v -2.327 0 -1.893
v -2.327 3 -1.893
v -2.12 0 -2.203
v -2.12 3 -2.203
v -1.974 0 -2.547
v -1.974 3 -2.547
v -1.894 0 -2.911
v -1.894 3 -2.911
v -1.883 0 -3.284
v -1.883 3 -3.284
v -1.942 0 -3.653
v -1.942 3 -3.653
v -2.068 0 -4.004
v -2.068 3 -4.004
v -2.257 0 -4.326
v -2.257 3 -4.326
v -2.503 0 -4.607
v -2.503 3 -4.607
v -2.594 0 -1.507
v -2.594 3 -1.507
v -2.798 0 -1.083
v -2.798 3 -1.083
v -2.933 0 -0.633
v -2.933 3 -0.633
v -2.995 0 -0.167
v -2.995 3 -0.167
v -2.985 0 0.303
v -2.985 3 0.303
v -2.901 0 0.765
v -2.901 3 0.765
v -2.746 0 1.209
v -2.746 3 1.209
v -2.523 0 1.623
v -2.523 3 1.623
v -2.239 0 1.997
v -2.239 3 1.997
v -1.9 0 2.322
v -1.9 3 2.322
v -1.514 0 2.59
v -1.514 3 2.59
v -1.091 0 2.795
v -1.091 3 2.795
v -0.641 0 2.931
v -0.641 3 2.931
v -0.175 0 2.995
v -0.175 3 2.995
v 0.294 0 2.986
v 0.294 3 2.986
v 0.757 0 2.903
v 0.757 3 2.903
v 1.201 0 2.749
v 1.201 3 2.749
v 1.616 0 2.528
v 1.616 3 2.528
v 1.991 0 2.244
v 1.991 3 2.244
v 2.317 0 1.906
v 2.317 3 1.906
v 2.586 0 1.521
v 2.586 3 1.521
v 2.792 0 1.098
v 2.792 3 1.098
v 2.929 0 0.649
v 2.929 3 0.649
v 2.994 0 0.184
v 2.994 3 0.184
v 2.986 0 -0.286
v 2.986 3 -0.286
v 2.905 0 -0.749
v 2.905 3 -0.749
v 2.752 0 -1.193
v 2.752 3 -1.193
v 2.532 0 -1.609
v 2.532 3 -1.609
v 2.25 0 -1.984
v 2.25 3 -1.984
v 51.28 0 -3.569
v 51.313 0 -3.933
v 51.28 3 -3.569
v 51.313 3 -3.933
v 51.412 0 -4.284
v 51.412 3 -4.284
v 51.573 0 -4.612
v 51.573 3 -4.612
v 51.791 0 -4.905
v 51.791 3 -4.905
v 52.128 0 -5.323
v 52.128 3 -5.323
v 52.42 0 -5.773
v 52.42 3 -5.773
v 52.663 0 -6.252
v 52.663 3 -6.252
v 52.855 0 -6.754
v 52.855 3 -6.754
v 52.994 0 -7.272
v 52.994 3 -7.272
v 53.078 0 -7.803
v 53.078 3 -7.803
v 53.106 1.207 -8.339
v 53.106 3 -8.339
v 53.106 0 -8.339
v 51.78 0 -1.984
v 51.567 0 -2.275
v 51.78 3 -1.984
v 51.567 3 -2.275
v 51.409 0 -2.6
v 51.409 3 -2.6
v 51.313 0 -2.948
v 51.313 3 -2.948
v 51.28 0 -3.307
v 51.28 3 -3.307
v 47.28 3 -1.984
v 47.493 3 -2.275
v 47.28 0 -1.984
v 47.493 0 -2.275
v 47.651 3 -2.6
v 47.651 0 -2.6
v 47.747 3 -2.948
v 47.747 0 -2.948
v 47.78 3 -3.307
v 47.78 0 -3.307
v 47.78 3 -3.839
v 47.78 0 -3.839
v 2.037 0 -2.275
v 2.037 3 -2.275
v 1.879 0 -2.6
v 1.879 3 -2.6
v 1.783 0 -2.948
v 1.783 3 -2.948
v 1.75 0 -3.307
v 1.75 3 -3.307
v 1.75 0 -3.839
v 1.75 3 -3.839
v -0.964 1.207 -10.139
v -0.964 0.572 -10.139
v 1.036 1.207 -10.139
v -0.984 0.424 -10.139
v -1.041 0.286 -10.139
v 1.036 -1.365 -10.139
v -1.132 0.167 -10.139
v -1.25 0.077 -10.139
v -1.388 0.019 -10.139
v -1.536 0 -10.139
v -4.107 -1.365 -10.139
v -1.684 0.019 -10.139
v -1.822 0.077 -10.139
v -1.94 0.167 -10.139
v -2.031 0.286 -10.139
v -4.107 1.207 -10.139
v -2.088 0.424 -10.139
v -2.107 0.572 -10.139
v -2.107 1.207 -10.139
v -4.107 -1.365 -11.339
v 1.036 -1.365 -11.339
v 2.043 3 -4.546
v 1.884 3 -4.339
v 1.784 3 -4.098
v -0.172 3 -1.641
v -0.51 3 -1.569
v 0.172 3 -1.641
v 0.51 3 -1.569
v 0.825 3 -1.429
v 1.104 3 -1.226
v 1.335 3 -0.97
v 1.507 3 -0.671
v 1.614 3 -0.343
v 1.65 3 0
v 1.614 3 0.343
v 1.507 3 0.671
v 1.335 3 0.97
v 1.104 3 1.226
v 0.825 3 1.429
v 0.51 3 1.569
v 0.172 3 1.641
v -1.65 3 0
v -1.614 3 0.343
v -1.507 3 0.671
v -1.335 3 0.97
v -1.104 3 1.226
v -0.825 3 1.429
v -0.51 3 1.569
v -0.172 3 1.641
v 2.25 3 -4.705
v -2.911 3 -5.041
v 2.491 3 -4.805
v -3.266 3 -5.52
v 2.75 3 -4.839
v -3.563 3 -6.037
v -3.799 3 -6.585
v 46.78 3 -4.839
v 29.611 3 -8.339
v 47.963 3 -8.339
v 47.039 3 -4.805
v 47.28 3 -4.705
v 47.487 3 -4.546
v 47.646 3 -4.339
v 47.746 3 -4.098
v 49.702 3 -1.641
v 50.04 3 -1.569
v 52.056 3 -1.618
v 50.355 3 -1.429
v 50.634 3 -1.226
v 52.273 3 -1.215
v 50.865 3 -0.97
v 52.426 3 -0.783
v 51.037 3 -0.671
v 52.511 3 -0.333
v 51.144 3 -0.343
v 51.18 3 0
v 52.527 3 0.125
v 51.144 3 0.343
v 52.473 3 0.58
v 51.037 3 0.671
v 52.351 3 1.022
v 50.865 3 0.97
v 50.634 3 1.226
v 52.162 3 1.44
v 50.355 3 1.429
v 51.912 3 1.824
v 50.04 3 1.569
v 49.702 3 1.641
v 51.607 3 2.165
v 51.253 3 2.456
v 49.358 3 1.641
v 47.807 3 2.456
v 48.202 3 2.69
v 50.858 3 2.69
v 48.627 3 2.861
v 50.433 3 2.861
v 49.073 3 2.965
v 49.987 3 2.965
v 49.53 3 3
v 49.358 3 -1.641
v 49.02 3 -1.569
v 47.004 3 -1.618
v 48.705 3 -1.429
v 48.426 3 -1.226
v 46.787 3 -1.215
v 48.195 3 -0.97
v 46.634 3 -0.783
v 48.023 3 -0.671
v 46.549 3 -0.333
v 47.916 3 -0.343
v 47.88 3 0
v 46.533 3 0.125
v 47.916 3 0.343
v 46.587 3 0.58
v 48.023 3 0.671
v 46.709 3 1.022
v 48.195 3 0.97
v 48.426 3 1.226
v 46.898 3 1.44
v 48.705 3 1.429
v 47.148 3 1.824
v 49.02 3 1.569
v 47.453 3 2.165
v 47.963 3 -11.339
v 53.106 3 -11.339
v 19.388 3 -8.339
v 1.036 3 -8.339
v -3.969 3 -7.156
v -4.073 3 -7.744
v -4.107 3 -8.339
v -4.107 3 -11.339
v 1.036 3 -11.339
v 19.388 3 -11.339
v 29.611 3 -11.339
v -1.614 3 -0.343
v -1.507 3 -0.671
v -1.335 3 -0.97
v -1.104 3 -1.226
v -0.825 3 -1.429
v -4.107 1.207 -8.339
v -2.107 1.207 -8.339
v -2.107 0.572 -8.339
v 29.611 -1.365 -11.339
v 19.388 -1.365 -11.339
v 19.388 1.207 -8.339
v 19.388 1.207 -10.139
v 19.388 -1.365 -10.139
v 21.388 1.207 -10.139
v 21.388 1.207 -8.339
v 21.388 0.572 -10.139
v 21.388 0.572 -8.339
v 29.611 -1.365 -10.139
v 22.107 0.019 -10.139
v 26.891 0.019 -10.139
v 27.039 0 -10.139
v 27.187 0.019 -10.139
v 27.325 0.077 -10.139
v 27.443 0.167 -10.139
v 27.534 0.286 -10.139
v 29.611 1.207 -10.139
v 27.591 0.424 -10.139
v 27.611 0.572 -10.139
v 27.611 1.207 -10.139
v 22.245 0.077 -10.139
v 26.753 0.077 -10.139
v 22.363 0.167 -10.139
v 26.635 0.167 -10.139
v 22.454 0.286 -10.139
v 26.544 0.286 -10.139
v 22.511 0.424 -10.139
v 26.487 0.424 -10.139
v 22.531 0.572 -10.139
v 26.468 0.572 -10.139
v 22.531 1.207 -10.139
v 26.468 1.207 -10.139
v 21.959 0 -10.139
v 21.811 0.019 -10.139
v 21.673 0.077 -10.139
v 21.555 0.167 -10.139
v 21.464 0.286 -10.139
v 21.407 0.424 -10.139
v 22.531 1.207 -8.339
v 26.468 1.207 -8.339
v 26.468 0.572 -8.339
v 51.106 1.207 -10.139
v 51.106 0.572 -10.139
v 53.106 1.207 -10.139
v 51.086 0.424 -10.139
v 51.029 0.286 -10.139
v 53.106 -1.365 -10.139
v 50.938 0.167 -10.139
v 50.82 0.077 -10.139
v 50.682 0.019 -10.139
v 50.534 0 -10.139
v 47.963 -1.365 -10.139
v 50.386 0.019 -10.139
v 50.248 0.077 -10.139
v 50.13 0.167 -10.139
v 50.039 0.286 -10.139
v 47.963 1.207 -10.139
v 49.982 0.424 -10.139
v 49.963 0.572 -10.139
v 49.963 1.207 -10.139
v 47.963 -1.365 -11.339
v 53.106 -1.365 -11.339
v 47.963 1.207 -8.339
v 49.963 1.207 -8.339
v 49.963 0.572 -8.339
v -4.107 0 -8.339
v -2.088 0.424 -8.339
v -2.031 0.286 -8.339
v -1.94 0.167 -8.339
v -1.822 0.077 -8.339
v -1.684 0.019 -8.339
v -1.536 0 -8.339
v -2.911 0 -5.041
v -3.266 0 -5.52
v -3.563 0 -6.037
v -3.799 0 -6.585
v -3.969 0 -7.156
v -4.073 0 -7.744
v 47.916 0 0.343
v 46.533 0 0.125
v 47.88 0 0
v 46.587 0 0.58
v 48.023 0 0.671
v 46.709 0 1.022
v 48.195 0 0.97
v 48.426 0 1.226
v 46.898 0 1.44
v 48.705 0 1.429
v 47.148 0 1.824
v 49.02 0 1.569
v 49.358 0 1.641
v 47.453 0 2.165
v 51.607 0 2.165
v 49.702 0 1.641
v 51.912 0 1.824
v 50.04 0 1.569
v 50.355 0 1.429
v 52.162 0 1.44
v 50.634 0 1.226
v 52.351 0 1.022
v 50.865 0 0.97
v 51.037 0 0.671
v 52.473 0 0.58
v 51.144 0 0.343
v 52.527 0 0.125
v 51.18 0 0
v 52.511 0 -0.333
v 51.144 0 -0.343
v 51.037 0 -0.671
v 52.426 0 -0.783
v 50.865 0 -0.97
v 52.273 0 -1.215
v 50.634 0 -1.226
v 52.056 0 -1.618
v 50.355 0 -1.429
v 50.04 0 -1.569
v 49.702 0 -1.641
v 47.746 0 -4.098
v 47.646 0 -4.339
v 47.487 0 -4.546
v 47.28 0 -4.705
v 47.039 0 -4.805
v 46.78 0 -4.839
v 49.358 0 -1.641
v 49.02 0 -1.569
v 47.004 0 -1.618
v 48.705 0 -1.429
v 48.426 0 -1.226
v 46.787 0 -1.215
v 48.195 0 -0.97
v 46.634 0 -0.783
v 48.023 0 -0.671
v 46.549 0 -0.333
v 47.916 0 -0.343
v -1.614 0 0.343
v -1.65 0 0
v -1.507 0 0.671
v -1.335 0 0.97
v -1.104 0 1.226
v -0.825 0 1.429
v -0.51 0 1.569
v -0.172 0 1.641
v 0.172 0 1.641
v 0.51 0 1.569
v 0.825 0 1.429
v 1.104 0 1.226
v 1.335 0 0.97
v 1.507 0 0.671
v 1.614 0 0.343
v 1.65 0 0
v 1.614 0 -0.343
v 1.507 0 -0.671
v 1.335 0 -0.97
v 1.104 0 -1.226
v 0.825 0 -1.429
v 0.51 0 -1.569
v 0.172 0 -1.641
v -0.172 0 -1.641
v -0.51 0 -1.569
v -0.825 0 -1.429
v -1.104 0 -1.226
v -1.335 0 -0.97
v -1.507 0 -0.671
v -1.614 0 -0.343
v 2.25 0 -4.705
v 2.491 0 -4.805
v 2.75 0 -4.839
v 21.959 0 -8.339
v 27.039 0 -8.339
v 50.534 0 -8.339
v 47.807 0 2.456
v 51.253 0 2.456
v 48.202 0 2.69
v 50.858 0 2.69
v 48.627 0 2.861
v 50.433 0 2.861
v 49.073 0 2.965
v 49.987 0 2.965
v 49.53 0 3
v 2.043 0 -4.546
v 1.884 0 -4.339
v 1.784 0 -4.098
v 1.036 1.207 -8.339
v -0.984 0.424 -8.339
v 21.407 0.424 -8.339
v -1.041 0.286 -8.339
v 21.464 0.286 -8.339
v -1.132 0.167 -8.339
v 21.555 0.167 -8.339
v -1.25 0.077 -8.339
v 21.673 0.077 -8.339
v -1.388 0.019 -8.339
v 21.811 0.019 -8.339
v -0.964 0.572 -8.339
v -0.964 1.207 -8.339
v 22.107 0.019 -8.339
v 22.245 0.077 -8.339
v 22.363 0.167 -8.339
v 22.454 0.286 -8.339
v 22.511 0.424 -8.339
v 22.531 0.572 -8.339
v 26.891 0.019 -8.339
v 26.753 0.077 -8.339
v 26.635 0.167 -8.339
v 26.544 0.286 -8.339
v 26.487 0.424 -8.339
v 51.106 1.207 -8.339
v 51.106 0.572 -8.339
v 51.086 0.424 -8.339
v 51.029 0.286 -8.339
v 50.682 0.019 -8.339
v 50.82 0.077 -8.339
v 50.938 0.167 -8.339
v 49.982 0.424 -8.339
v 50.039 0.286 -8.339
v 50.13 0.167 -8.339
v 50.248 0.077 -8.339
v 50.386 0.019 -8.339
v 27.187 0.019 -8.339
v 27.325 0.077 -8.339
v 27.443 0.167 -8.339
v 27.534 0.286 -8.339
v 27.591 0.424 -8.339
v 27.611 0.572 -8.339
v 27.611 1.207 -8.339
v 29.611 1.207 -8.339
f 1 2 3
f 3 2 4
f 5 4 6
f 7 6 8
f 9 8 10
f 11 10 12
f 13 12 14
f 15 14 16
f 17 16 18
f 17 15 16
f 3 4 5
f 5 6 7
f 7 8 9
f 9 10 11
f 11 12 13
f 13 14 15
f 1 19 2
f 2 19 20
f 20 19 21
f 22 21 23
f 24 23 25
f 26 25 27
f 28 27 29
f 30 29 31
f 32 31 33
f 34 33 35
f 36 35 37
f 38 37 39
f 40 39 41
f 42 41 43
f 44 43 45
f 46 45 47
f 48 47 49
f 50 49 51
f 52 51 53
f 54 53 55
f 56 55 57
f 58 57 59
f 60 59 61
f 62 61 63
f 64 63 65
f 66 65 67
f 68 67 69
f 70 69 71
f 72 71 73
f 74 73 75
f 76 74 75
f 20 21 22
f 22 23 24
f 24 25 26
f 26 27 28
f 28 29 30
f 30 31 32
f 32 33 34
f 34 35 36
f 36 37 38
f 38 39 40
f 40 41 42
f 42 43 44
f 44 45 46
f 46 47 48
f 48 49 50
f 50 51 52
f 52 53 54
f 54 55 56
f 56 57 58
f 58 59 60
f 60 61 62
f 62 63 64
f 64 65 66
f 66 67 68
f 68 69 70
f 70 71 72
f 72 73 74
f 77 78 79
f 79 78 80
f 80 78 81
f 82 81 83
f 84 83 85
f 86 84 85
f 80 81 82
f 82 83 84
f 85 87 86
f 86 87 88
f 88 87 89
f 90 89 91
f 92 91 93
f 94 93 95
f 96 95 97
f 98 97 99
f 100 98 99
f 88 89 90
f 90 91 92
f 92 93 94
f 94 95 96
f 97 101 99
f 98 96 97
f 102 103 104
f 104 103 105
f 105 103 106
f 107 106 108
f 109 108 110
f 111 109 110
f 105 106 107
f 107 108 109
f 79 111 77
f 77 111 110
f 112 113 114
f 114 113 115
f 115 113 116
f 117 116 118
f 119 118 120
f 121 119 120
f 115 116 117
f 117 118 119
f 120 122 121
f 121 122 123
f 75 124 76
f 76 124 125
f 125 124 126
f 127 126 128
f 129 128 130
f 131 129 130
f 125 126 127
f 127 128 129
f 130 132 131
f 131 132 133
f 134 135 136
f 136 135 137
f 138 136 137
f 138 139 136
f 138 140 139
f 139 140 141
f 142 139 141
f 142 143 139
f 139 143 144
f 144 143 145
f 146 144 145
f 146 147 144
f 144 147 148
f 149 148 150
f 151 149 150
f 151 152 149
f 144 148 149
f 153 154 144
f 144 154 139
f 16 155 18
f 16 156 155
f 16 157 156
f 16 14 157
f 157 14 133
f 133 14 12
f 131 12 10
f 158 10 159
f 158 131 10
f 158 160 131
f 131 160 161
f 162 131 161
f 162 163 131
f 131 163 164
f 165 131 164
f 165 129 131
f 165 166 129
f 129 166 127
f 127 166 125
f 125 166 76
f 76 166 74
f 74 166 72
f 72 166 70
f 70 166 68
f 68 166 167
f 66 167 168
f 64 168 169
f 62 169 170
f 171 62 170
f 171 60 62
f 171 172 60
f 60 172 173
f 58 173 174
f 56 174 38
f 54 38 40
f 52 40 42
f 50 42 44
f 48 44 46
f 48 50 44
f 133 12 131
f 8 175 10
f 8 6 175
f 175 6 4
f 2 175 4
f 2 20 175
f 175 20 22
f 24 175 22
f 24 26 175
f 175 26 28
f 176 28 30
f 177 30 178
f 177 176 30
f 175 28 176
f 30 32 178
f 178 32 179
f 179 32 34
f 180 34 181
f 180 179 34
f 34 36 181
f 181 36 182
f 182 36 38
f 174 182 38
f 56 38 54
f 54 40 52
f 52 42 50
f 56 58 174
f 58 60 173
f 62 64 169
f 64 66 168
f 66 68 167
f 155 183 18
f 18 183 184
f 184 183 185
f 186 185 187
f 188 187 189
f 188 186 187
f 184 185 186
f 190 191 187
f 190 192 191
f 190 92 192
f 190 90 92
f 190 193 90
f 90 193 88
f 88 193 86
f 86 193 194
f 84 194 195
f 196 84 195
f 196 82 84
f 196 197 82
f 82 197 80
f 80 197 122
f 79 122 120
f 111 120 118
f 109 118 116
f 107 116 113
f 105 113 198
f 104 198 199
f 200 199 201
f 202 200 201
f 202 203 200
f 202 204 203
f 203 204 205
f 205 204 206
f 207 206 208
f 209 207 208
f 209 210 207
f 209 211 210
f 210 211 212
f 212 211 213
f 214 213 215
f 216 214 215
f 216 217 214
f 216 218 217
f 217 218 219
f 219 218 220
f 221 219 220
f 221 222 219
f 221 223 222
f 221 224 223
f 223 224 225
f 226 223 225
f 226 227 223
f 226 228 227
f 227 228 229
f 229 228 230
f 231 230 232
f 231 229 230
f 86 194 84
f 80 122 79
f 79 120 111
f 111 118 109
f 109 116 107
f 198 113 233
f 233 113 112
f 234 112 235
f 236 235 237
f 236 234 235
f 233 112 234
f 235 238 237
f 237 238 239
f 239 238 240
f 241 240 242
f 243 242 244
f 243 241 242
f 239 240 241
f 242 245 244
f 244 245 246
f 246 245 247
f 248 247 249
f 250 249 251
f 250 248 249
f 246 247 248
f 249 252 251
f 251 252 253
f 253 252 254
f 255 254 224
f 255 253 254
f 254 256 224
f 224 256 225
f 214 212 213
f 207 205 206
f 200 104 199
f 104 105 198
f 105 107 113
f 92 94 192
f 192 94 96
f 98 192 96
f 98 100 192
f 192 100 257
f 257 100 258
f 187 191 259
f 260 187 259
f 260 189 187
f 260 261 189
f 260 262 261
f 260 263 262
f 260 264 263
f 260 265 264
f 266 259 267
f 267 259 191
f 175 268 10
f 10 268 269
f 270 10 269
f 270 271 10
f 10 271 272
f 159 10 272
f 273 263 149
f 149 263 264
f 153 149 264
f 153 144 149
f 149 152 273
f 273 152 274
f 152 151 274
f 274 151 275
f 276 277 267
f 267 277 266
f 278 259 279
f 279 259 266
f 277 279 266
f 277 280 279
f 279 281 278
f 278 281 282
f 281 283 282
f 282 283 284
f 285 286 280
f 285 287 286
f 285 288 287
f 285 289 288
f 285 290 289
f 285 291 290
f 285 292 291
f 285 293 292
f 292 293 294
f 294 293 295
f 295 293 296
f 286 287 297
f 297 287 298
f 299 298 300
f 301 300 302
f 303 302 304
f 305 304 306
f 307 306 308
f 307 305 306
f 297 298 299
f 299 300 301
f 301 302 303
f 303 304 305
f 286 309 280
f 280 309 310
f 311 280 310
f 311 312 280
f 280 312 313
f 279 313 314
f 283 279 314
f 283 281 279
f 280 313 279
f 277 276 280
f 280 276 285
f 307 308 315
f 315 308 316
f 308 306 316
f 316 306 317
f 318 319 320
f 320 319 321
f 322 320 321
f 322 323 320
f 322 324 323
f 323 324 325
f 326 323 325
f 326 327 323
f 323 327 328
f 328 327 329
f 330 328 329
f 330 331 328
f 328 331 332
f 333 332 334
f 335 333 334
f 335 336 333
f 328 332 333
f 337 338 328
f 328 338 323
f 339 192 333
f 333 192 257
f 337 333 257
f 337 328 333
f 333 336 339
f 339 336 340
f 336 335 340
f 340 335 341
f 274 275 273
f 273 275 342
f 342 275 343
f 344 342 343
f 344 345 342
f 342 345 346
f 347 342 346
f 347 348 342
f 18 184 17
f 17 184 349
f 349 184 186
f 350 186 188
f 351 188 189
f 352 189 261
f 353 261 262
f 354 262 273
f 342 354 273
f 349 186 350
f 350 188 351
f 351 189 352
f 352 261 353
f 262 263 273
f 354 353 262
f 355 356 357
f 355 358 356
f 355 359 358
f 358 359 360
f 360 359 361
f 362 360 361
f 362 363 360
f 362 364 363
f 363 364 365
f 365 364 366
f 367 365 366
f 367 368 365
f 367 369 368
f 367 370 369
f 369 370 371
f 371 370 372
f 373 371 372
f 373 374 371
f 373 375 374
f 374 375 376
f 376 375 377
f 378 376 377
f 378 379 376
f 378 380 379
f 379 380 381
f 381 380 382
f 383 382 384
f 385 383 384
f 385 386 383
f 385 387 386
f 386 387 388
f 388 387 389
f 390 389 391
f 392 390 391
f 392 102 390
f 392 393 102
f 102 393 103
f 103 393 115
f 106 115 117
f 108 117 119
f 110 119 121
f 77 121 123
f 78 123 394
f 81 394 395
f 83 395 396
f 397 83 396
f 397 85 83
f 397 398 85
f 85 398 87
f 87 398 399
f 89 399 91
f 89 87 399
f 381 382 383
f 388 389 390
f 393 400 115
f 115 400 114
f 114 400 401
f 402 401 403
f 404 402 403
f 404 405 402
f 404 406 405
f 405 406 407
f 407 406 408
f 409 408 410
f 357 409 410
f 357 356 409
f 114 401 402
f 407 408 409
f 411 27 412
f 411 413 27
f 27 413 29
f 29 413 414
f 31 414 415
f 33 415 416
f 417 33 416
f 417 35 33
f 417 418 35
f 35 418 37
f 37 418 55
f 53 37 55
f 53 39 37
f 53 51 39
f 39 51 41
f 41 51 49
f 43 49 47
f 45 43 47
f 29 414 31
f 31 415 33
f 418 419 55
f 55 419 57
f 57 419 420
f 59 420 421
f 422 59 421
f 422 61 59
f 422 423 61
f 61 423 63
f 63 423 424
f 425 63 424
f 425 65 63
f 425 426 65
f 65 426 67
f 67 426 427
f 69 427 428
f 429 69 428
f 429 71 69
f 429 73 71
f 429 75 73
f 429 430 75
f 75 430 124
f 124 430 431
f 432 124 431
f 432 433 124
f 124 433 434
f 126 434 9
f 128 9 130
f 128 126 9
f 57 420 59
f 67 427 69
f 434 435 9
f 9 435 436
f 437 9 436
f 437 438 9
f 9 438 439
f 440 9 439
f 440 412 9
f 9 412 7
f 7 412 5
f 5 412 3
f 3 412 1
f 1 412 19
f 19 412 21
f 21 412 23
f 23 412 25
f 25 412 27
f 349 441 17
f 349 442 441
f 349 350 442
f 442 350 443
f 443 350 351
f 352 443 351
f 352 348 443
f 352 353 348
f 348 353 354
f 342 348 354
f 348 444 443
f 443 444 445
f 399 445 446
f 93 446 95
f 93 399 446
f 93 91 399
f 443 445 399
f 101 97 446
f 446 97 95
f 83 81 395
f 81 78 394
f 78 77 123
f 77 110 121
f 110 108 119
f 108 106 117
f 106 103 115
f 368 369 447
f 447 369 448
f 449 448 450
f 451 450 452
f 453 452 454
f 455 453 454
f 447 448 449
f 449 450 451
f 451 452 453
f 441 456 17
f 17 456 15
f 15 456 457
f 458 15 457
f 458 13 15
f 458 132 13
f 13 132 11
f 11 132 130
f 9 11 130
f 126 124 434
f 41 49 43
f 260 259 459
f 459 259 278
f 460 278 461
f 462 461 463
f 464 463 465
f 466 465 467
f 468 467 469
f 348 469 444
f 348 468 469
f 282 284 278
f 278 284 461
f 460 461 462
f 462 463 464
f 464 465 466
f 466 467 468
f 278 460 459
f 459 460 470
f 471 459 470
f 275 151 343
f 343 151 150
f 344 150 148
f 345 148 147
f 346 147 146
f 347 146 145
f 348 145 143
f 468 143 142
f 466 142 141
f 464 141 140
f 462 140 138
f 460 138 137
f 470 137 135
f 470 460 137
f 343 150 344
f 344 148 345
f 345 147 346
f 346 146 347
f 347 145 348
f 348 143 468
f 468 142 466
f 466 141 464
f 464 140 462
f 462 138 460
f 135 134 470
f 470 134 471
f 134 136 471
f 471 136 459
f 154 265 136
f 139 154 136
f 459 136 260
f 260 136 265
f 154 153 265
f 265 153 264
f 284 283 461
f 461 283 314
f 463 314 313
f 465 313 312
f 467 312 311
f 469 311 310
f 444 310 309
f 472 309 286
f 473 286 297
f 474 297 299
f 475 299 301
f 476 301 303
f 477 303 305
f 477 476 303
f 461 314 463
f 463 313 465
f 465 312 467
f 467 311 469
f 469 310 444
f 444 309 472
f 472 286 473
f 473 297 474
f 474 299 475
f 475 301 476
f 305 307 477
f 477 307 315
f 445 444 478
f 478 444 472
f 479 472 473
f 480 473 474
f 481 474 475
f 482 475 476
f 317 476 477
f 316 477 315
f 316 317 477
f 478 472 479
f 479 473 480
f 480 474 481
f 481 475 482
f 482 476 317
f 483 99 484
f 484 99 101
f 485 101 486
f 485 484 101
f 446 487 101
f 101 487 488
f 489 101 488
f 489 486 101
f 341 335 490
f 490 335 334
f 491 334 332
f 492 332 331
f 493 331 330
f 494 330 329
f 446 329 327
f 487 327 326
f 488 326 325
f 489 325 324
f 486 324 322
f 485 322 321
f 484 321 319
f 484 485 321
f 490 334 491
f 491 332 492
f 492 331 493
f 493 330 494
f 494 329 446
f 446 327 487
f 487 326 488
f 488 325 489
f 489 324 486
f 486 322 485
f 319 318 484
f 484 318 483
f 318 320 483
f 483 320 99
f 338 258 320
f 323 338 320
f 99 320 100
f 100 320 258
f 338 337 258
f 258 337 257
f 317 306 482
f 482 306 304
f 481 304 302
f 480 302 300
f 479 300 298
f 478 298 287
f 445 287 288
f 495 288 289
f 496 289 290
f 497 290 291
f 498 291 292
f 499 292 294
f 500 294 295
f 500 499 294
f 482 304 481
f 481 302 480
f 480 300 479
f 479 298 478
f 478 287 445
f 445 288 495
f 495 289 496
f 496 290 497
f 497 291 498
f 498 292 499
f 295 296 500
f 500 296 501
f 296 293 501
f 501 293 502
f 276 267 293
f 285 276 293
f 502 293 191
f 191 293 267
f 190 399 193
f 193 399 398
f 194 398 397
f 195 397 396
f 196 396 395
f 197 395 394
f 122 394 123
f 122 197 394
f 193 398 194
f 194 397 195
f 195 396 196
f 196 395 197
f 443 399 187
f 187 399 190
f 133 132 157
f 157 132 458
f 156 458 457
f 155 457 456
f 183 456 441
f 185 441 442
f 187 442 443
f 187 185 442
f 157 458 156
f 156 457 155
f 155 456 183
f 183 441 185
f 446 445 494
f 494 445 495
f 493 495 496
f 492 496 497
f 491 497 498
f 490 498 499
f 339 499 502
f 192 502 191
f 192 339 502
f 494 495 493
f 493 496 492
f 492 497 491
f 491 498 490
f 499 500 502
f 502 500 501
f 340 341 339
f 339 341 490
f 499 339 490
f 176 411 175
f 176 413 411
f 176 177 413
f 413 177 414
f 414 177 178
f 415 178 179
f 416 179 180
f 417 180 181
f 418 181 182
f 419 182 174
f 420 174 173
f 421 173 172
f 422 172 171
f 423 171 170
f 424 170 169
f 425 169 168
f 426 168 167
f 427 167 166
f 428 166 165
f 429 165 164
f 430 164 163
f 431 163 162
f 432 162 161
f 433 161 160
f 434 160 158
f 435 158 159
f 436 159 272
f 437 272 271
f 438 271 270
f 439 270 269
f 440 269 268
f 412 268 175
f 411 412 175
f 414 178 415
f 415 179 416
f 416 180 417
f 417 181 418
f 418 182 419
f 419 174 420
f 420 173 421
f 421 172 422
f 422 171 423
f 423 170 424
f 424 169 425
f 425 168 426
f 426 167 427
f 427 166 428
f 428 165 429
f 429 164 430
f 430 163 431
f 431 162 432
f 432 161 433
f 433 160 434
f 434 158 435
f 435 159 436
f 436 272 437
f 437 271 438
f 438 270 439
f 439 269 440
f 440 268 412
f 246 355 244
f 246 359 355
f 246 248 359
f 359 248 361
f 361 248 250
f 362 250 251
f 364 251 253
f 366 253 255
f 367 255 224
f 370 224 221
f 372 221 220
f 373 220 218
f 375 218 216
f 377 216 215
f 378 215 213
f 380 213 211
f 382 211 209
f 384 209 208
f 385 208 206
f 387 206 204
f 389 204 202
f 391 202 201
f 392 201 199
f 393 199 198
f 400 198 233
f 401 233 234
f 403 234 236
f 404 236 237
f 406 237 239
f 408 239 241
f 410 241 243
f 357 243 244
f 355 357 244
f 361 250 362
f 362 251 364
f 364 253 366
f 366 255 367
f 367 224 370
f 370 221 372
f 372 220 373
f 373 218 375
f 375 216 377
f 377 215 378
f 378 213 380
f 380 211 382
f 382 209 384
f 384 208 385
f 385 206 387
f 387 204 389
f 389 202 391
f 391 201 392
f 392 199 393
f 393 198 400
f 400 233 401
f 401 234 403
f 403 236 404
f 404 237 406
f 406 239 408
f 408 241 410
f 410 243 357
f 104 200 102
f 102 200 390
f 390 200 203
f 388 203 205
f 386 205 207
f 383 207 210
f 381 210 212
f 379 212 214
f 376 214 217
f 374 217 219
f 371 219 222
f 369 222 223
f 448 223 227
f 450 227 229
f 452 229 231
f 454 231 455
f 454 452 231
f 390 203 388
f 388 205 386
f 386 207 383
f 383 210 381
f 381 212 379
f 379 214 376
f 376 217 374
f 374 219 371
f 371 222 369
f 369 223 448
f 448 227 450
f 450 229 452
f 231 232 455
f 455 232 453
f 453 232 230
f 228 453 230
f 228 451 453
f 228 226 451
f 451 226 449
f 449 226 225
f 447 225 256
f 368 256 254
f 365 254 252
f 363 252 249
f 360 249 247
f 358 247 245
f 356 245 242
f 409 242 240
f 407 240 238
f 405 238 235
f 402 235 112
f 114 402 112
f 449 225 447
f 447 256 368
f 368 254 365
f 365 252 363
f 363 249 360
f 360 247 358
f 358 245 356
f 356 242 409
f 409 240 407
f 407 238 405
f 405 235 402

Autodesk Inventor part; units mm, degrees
ref_plane "YZ Plane" through (0, 0, 0) normal (1, 0, 0) x (0, 1, 0)
ref_plane "XZ Plane" through (0, 0, 0) normal (0, 1, 0) x (-1, 0, 0)
ref_plane "XY Plane" through (0, 0, 0) normal (0, 0, 1) x (1, 0, 0)
sketch "Sketch1" plane through (0, 0, 0) normal (0, 1, 0) x (-1, 0, 0)
  circle A0 centre (0, 0) radius 1.65
  line L0 (0, 0) -> (22.8671, 0) construction
  circle A1 centre (-49.53, 0) radius 1.65
  circle A2 centre (-49.53, 0) radius 3
  line L1 (-24.765, 0) -> (-24.765, 33.4897) construction
  line L2 (0, 0) -> (0, -6.322) construction
  line L3 (-49.53, 0) -> (-44.53, 0) construction
  circle A3 centre (0, 0) radius 3
  dimension "d0" = 3.3
  dimension "d2" = 49.53
  dimension "d3" = 3.3
  dimension "d4" = 6
  dimension "d11" = 6
extrude "Extrusion1" add sketch "Sketch1" along normal blind 3
sketch "Sketch2" plane through (49.53, 0, 0) normal (0, -1, 0) x (1, 0, 0)
  line L0 (1.75, -2.2) -> (1.75, -6.339)
  line L1 (-0.25, -8.339) -> (-49.28, -8.339)
  line L2 (-51.28, -6.339) -> (-51.28, -2.2)
  line L3 (-47.78, -2.2) -> (-47.78, -3.839)
  line L4 (-46.78, -4.839) -> (-2.75, -4.839)
  line L5 (-1.75, -3.839) -> (-1.75, -2.2)
  line L6 (0, 0) -> (0, -7.7115) construction
  line L7 (1.75, -2.2) -> (-1.75, -2.2)
  line L8 (-49.53, 0) -> (-49.53, -7.2415) construction
  line L9 (-47.78, -2.2) -> (-51.28, -2.2)
  arc A0 (-47.78, -3.839) -> (-46.78, -4.839) centre (-46.78, -3.839) ccw
  arc A1 (-2.75, -4.839) -> (-1.75, -3.839) centre (-2.75, -3.839) ccw
  arc A2 (-51.28, -6.339) -> (-49.28, -8.339) centre (-49.28, -6.339) ccw
  arc A3 (-0.25, -8.339) -> (1.75, -6.339) centre (-0.25, -6.339) ccw
  point P0 (1.75, -8.339)
  point P1 (0, -2.2)
  point P2 (-49.53, -2.2)
  dimension "d14" = 6.139
  dimension "d15" = 2.2
  dimension "d16" = 3.5
  dimension "d17" = 3.5
  dimension "d18" = 2.2
  dimension "d19" = 1
  dimension "d20" = 2
extrude "Extrusion2" add sketch "Sketch2" against normal blind 3
sketch "Sketch3" plane through (49.28, 0, -8.339) normal (0, 0, -1) x (-1, 0, 0)
  arc A0 (21.6693, 0.5715) -> (22.8123, 0.5715) centre (22.2408, 0.5715) ccw
  line L0 (49.03, 0) -> (0, 0) construction
  line L1 (0, 3) -> (49.03, 3) projected
  line L2 (-2, 0) -> (-2, 3) projected
  line L3 (22.8123, 0.5715) -> (22.8123, 1.2065)
  line L4 (22.8123, 1.2065) -> (24.8123, 1.2065)
  line L5 (24.8123, 1.2065) -> (24.8123, 3)
  line L6 (21.6693, 0.5715) -> (21.6693, 1.2065)
  line L7 (21.6693, 1.2065) -> (19.6693, 1.2065)
  line L8 (19.6693, 1.2065) -> (19.6693, 3)
  line L9 (22.2408, 0.5715) -> (23.4157, 0.5715) construction
  line L10 (24.8123, 3) -> (19.6693, 3)
  point P0 (49.28, 0)
  point P1 (46.53, 3)
  point P2 (2.5, 3)
  dimension "d23" = 1.143
  dimension "d26" = 24.2408
  dimension "d27" = 2
  dimension "d28" = 2
  dimension "d29" = 0.635
  dimension "d30" = 0.635
  dimension "d31" = 2.4285
extrude "Extrusion3" add sketch "Sketch3" along normal blind 3
pattern_linear "Rectangular Pattern1" count 2 spacing 23.495 along (1, 0, 0) of "Extrusion3"
sketch "Sketch4" plane through (47.9627, 3, -8.339) normal (0, 1, 0) x (1, 0, 0)
  arc A0 (0, -5.143) -> (5.143, 0) centre (0, 0) ccw
  line L0 (5.143, 0) -> (0, 0)
  line L1 (0, 0) -> (0, -5.143)
  point P0 (-47.9627, -8.339)
extrude "Extrusion4" add sketch "Sketch4" against normal blind 3
pattern_linear "Rectangular Pattern2" count 2 spacing 5.08 along (-1, 0, 0) of "Extrusion3"
pattern_linear "Rectangular Pattern3" count 2 spacing 23.495 along (-1, 0, 0) of "Rectangular Pattern2"
sketch "Sketch6" plane through (0, 0, 0) normal (0, -1, 0) x (1, 0, 0)
  line L0 (1.0357, -8.339) -> (-4.1073, -8.339)
  line L1 (-4.1073, -8.339) -> (-1.6483, -8.339)
  line L2 (-0.2103, -8.339) -> (0.25, -8.339)
  line L3 (0.25, -8.339) -> (1.0357, -8.339)
  line L4 (1.0357, -8.339) -> (1.0357, -3.196)
  arc A0 (1.0357, -3.196) -> (-4.1073, -8.339) centre (1.0357, -8.339) ccw
  line L5 (-0.9643, -8.339) -> (0.25, -8.339) projected
  line L6 (-0.9643, -8.339) -> (-0.9643, -11.339) projected
  line L7 (1.0357, -11.339) -> (-0.9643, -11.339) projected
  line L8 (1.0357, -8.339) -> (1.0357, -11.339) projected
  line L9 (0.25, -8.339) -> (1.0357, -8.339) projected
  line L10 (-4.1073, -8.339) -> (-2.1073, -8.339) projected
  line L11 (-4.1073, -8.339) -> (-4.1073, -11.339) projected
  line L12 (-2.1073, -11.339) -> (-4.1073, -11.339) projected
  line L13 (-2.1073, -8.339) -> (-2.1073, -11.339) projected
  line L14 (0.25, -8.339) -> (21.9592, -8.339) projected
  point P0 (5.143, 0)
extrude "Extrusion5" add sketch "Sketch6" against normal blind 3 contours L0 A0 L4
sketch "Sketch7" plane through (53.1057, 3, -11.339) normal (0, 0, -1) x (-1, 0, 0)
  line L0 (3.143, -2.4285) -> (3.143, -1.7935) construction
  line L1 (3.143, -1.7935) -> (5.143, -1.7935) construction
  line L2 (5.143, -1.7935) -> (5.143, 0) construction
  line L3 (5.143, 0) -> (0, 0) construction
  line L4 (0, 0) -> (0, -1.7935) construction
  line L5 (0, -1.7935) -> (2, -1.7935) construction
  line L6 (2, -1.7935) -> (2, -2.4285) construction
  arc A0 (2, -2.4285) -> (3.143, -2.4285) centre (2.5715, -2.4285) ccw construction
  line L7 (0, -1.7935) -> (0, 0)
  line L8 (0, 0) -> (5.143, 0)
  line L9 (5.143, 0) -> (5.143, -1.7935)
  arc A1 (0, -1.7935) -> (5.143, -1.7935) centre (2.5715, -1.7935) ccw
  line L10 (5.143, -1.7935) -> (0, -1.7935) construction
  line L11 (5.143, -1.7935) -> (5.143, 0) construction
  line L12 (0, -1.7935) -> (5.143, -1.7935)
  line L13 (5.143, -1.7935) -> (5.143, -4.365)
  line L14 (5.143, -4.365) -> (0, -4.365)
  line L15 (0, -4.365) -> (0, -1.7935)
  point P0 (53.1057, -3)
  dimension "d96" = 2.5715
extrude "Extrusion6" add sketch "Sketch7" against normal blind 1.2
pattern_linear "Rectangular Pattern4" count 2 spacing 23.495 along (-1, 0, 0) of "Extrusion6"
pattern_linear "Rectangular Pattern5" count 2 spacing 28.575 along (-1, 0, 0) of "Extrusion6"
pattern_linear "Rectangular Pattern6" count 2 spacing 52.07 along (-1, 0, 0) of "Extrusion6"
sketch "Sketch9" plane through (0, 0, 0) normal (0, -1, 0) x (1, 0, 0)
  circle A0 centre (0, 0) radius 1.65 projected
  circle A1 centre (49.53, 0) radius 1.65 projected
  circle A2 centre (49.53, 0) radius 3.5
  arc A3 (1.75, -2.4367) -> (-1.75, -2.4367) centre (0, 0) ccw projected
  circle A4 centre (0, 0) radius 3.5
  point P0 (2.1649, -2.7501)
extrude "Extrusion7" [suppressed]
fillet "Fillet2" radius 2 2 edges at (1.75, 1.5, -2.4367) (47.78, 1.5, -2.4367)
fillet "Fillet3" radius 2 4 edges at (-1.75, 1.5, -2.4367) (51.28, 1.5, -2.4367) (51.28, 1.5, -4.4088) (-1.75, 1.5, -4.0158)
properties part number "HDMIPluginModuleHolder04"
